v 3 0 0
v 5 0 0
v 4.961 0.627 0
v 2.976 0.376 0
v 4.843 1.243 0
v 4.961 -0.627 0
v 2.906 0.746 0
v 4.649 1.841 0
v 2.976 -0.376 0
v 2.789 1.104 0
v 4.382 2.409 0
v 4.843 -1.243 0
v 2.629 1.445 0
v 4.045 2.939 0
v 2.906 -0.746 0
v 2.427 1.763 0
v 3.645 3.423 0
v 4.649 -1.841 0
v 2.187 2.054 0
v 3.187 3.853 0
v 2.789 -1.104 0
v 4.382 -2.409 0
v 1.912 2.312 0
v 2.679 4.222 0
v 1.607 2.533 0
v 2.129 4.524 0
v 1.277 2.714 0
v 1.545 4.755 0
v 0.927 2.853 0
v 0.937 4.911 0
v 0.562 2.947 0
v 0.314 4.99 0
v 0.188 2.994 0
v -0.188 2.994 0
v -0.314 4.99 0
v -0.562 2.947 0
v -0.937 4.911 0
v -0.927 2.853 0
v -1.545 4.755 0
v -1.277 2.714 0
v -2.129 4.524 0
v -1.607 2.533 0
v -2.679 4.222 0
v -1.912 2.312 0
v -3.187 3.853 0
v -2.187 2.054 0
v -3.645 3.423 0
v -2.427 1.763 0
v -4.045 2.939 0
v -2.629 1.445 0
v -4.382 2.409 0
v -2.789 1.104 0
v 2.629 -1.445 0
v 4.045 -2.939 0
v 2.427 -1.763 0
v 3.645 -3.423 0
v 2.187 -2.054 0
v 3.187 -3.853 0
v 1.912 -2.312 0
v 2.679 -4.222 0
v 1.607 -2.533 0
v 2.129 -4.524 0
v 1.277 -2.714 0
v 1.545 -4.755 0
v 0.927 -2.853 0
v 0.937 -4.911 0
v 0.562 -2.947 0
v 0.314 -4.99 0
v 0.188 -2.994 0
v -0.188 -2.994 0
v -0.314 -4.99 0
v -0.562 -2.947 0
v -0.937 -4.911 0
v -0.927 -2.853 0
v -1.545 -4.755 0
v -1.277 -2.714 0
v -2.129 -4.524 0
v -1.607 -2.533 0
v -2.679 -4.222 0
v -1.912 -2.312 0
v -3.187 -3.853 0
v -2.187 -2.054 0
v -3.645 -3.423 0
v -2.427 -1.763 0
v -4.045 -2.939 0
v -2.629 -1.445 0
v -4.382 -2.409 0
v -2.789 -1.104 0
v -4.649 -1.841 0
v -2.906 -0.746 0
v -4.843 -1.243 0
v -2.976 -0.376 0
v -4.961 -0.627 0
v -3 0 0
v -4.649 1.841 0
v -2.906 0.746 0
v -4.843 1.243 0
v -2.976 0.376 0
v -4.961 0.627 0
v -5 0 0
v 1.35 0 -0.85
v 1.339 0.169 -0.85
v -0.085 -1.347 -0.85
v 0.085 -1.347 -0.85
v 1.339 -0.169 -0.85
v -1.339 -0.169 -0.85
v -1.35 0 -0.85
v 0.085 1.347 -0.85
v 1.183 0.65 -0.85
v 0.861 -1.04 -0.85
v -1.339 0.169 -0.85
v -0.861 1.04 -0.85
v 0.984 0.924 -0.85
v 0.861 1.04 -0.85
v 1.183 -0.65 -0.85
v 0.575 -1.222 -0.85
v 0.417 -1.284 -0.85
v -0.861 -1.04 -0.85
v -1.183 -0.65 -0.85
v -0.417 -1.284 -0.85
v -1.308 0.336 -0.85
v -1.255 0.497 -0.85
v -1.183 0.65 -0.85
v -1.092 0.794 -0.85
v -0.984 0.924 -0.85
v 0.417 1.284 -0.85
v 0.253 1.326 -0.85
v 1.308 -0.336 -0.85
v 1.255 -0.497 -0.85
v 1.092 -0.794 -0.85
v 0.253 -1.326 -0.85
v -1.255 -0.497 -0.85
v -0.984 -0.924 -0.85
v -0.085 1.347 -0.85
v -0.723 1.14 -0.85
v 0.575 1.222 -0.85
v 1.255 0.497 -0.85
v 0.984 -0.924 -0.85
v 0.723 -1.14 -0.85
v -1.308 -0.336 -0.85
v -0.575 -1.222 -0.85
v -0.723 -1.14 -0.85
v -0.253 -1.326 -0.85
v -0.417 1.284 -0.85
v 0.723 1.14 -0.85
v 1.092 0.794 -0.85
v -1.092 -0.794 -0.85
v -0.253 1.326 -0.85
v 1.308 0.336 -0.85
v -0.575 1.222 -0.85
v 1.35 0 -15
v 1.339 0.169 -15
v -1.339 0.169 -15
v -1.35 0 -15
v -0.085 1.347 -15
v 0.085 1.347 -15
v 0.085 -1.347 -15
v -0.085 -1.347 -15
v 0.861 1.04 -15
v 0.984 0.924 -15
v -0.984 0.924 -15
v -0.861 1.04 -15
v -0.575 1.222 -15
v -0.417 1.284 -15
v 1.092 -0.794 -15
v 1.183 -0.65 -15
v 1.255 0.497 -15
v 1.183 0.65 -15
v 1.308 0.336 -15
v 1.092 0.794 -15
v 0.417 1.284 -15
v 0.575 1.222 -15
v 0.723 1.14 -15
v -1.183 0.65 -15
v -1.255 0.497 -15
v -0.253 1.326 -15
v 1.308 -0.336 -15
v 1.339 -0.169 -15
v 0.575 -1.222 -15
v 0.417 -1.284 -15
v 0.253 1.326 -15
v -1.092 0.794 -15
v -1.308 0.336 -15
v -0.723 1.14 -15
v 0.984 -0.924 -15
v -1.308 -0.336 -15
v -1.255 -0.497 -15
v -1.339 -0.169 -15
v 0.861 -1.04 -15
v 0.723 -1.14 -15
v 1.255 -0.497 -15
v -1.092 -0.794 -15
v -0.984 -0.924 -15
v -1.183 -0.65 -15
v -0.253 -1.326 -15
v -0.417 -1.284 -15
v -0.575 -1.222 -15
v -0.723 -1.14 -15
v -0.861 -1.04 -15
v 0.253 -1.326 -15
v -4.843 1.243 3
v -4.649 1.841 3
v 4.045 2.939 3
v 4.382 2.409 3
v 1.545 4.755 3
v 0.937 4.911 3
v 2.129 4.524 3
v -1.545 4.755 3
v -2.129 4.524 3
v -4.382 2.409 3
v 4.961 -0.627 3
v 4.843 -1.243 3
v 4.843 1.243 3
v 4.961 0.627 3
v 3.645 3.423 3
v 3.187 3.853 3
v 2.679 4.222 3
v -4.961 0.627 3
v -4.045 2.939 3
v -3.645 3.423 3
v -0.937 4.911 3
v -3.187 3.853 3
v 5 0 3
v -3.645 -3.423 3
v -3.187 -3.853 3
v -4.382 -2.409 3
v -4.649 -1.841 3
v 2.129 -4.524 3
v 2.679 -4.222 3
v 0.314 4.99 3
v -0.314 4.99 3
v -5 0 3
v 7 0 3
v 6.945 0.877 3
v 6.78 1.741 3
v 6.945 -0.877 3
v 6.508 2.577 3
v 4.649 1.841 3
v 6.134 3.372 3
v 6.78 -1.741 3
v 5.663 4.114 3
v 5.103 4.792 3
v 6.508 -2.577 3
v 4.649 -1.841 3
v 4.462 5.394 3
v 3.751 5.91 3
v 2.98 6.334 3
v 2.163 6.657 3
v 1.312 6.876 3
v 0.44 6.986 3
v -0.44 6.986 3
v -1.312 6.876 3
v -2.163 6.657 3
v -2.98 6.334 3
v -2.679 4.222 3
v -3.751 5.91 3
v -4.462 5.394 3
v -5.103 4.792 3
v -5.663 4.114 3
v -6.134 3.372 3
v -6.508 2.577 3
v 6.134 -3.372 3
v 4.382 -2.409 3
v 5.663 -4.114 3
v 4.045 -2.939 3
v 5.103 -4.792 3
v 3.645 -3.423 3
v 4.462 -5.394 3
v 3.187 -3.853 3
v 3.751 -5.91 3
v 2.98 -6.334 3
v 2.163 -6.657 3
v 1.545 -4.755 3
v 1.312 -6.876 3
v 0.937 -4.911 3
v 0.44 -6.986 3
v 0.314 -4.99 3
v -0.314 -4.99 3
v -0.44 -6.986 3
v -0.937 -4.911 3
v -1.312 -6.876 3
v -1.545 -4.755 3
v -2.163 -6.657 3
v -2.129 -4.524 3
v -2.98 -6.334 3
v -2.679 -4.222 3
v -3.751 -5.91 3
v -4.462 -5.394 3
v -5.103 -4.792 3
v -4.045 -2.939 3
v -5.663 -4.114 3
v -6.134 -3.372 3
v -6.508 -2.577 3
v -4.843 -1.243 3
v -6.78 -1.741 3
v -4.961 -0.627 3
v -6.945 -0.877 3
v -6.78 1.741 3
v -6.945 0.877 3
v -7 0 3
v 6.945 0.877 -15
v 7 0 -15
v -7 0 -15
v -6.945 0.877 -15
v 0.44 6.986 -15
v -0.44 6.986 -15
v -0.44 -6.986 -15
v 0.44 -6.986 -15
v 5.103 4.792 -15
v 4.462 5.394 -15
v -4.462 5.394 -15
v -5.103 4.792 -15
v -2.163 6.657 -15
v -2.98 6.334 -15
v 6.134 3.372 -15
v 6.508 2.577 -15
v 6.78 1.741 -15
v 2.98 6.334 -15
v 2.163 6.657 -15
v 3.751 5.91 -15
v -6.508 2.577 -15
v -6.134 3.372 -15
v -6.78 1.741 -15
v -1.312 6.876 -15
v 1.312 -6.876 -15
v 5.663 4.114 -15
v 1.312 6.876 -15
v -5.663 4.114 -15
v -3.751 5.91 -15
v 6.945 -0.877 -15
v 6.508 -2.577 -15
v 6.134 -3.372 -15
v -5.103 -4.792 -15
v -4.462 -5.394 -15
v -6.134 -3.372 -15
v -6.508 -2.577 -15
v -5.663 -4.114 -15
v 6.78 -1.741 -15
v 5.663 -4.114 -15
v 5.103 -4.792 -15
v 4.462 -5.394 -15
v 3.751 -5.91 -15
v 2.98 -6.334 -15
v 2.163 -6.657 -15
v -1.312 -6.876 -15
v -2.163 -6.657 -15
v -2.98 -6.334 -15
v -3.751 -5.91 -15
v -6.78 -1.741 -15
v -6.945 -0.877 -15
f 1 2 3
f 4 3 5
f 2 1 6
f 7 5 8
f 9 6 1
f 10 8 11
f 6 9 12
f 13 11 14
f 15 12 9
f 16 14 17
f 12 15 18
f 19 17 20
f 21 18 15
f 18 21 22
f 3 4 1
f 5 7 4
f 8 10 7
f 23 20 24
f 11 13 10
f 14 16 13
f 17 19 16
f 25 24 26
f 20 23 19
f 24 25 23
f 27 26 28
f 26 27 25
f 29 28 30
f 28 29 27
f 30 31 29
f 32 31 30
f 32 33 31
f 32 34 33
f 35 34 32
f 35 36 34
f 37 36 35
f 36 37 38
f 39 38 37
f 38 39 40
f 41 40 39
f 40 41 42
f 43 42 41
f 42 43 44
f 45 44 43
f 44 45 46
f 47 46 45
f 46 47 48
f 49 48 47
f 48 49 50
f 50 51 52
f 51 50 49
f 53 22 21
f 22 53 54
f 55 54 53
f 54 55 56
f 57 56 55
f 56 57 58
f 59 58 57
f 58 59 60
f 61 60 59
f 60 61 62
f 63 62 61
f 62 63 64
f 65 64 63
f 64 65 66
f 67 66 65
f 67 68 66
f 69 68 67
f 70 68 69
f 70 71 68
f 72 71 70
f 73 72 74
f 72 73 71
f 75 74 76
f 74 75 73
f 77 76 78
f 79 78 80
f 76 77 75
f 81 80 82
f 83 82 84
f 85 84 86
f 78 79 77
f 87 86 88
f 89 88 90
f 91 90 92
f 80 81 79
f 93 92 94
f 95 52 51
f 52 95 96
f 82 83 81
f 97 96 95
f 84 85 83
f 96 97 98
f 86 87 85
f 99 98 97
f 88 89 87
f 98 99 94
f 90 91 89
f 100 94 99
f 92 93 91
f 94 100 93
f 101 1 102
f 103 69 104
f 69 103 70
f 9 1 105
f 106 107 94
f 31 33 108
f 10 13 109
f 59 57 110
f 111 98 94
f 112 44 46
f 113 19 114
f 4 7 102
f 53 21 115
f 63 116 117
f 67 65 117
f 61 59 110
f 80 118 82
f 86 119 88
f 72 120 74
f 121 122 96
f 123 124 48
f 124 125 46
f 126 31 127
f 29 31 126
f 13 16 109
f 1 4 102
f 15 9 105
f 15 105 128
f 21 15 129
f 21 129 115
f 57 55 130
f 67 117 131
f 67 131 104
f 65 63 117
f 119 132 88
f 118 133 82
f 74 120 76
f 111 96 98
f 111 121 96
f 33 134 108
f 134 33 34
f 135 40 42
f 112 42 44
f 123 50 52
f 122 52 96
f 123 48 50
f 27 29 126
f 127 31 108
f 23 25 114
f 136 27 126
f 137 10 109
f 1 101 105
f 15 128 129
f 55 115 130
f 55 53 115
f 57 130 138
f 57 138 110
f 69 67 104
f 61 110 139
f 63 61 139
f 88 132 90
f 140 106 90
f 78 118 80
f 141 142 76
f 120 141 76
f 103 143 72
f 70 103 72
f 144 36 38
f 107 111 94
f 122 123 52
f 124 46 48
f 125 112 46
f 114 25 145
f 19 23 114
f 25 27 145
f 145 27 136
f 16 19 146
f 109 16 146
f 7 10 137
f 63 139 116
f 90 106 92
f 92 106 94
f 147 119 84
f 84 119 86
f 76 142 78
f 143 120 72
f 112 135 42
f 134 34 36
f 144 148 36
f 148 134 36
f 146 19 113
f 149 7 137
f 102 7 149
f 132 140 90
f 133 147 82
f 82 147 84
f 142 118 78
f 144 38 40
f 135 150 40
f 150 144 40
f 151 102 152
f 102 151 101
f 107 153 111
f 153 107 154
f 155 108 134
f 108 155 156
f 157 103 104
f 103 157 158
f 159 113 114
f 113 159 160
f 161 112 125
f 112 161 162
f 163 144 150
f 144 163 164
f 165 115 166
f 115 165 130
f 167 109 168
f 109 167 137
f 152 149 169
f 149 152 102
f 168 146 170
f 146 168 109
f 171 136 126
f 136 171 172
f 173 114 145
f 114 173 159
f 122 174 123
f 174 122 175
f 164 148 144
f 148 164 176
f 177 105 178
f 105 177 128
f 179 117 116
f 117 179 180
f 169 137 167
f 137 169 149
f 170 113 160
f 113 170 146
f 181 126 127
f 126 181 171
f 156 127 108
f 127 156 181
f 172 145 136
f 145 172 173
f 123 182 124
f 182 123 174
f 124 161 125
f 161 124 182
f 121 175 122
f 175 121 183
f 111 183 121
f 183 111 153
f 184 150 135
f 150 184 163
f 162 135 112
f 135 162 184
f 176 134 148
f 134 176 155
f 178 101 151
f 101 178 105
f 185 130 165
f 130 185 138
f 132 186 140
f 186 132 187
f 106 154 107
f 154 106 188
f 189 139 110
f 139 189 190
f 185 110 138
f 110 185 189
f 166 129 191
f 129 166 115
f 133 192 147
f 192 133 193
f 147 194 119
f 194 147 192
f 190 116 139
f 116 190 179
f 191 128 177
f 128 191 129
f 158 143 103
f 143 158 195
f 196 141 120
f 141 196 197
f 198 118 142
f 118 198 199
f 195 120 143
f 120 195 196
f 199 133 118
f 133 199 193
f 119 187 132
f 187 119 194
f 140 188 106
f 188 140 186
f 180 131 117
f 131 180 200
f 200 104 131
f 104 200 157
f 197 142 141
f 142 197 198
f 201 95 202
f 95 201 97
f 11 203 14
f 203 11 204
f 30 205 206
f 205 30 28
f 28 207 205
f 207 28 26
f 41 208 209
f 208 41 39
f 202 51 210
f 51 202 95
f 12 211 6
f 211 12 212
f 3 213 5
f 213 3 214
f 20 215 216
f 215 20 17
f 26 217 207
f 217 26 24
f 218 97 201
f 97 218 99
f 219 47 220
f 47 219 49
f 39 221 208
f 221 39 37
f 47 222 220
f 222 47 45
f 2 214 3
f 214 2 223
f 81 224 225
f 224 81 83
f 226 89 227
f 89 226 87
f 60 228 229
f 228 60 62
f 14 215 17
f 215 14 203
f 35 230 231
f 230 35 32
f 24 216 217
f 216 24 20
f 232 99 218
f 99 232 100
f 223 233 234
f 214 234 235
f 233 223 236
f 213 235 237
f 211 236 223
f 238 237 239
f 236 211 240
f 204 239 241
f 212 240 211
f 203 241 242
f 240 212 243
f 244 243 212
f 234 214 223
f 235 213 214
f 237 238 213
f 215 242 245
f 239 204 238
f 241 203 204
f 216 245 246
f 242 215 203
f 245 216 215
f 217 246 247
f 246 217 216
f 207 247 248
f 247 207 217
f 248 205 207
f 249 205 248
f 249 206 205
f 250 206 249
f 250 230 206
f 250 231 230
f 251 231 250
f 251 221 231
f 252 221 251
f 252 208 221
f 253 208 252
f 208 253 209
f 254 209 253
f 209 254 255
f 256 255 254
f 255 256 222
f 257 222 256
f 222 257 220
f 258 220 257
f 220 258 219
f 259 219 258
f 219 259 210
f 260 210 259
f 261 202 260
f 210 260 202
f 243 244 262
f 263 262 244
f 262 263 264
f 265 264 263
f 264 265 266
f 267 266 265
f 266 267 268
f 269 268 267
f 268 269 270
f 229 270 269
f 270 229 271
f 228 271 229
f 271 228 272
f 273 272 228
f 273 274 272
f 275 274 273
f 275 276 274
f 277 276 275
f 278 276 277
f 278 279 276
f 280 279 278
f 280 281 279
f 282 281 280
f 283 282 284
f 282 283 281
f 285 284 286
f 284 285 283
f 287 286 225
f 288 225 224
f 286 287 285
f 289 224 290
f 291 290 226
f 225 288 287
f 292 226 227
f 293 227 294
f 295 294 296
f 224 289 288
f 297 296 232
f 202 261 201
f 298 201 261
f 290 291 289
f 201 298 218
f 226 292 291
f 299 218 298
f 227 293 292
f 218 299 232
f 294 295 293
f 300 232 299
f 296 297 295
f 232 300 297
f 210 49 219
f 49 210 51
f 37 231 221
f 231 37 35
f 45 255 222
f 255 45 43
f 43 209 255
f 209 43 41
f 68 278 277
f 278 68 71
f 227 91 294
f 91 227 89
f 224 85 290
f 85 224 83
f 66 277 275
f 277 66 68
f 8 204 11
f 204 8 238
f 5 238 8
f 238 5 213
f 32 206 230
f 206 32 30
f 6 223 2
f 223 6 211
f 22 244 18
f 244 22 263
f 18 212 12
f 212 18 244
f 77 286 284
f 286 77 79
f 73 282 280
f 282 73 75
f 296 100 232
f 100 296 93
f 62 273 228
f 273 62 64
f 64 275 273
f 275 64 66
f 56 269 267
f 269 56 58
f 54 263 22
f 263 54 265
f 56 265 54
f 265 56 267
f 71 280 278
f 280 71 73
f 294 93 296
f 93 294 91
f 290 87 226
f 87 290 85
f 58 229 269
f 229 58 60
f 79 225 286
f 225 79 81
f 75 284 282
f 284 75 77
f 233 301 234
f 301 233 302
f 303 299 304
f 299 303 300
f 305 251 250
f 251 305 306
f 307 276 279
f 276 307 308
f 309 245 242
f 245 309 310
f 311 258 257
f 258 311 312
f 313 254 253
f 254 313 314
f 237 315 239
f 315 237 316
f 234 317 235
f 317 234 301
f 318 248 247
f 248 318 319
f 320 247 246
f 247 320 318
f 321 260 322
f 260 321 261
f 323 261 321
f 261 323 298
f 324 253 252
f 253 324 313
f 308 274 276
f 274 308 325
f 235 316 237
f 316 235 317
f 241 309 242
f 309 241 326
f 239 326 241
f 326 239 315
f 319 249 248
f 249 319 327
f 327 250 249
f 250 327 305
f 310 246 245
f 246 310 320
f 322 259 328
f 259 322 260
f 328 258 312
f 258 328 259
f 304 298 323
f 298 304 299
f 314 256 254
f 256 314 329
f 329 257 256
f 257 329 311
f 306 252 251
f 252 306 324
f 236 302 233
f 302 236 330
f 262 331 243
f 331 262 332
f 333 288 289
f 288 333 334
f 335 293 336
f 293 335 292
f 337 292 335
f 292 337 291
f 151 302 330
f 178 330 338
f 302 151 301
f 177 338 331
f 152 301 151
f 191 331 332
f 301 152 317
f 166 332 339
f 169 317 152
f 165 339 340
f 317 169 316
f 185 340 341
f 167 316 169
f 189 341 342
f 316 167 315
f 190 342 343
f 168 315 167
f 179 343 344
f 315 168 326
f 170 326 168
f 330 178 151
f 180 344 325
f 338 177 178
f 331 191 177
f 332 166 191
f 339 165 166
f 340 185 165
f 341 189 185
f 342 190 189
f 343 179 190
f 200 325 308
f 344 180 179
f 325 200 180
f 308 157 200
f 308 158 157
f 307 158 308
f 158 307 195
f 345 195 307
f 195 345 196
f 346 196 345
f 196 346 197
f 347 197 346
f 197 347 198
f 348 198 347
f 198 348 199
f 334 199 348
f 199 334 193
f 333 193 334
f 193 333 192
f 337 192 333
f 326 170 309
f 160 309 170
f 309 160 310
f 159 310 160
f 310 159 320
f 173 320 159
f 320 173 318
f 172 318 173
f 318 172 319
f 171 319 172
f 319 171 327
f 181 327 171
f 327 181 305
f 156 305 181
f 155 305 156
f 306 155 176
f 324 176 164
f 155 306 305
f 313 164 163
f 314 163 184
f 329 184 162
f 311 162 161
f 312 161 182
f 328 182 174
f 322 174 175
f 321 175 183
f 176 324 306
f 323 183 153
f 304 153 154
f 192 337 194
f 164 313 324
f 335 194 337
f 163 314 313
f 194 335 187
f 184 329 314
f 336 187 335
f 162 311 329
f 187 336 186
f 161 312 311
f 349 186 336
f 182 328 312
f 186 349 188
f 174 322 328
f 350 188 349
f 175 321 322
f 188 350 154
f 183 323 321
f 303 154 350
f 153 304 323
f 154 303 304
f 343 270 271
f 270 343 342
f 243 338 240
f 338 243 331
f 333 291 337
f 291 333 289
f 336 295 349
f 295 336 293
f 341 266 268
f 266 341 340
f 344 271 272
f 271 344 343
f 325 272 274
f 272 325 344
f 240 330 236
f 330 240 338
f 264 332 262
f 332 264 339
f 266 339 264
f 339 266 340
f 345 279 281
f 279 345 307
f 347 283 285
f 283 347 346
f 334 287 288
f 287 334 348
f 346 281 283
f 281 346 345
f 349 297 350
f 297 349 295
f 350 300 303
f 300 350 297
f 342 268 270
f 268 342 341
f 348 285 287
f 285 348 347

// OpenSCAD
$fn = 50;

difference() {
	union() {
		translate(v = [0, 0, -15.0]) {
			cylinder(h = 18, r = 7.0);
		}
	}
	union() {
		translate(v = [0, 0, 0]) {
			rotate(a = [0, 0, 0]) {
				difference() {
					union() {
						translate(v = [0, 0, -18.0]) {
							cylinder(h = 18, r = 1.0);
						}
						translate(v = [0, 0, -0.85]) {
							cylinder(h = 0.85, r1 = 1.35, r2 = 3.0);
						}
						translate(v = [0, 0, -18.0]) {
							cylinder(h = 18, r = 1.35);
						}
						translate(v = [0, 0, -18.0]) {
							cylinder(h = 18, r = 1.0);
						}
					}
					union();
				}
			}
		}
		#cylinder(h = 3, r = 5.0);
	}
}
